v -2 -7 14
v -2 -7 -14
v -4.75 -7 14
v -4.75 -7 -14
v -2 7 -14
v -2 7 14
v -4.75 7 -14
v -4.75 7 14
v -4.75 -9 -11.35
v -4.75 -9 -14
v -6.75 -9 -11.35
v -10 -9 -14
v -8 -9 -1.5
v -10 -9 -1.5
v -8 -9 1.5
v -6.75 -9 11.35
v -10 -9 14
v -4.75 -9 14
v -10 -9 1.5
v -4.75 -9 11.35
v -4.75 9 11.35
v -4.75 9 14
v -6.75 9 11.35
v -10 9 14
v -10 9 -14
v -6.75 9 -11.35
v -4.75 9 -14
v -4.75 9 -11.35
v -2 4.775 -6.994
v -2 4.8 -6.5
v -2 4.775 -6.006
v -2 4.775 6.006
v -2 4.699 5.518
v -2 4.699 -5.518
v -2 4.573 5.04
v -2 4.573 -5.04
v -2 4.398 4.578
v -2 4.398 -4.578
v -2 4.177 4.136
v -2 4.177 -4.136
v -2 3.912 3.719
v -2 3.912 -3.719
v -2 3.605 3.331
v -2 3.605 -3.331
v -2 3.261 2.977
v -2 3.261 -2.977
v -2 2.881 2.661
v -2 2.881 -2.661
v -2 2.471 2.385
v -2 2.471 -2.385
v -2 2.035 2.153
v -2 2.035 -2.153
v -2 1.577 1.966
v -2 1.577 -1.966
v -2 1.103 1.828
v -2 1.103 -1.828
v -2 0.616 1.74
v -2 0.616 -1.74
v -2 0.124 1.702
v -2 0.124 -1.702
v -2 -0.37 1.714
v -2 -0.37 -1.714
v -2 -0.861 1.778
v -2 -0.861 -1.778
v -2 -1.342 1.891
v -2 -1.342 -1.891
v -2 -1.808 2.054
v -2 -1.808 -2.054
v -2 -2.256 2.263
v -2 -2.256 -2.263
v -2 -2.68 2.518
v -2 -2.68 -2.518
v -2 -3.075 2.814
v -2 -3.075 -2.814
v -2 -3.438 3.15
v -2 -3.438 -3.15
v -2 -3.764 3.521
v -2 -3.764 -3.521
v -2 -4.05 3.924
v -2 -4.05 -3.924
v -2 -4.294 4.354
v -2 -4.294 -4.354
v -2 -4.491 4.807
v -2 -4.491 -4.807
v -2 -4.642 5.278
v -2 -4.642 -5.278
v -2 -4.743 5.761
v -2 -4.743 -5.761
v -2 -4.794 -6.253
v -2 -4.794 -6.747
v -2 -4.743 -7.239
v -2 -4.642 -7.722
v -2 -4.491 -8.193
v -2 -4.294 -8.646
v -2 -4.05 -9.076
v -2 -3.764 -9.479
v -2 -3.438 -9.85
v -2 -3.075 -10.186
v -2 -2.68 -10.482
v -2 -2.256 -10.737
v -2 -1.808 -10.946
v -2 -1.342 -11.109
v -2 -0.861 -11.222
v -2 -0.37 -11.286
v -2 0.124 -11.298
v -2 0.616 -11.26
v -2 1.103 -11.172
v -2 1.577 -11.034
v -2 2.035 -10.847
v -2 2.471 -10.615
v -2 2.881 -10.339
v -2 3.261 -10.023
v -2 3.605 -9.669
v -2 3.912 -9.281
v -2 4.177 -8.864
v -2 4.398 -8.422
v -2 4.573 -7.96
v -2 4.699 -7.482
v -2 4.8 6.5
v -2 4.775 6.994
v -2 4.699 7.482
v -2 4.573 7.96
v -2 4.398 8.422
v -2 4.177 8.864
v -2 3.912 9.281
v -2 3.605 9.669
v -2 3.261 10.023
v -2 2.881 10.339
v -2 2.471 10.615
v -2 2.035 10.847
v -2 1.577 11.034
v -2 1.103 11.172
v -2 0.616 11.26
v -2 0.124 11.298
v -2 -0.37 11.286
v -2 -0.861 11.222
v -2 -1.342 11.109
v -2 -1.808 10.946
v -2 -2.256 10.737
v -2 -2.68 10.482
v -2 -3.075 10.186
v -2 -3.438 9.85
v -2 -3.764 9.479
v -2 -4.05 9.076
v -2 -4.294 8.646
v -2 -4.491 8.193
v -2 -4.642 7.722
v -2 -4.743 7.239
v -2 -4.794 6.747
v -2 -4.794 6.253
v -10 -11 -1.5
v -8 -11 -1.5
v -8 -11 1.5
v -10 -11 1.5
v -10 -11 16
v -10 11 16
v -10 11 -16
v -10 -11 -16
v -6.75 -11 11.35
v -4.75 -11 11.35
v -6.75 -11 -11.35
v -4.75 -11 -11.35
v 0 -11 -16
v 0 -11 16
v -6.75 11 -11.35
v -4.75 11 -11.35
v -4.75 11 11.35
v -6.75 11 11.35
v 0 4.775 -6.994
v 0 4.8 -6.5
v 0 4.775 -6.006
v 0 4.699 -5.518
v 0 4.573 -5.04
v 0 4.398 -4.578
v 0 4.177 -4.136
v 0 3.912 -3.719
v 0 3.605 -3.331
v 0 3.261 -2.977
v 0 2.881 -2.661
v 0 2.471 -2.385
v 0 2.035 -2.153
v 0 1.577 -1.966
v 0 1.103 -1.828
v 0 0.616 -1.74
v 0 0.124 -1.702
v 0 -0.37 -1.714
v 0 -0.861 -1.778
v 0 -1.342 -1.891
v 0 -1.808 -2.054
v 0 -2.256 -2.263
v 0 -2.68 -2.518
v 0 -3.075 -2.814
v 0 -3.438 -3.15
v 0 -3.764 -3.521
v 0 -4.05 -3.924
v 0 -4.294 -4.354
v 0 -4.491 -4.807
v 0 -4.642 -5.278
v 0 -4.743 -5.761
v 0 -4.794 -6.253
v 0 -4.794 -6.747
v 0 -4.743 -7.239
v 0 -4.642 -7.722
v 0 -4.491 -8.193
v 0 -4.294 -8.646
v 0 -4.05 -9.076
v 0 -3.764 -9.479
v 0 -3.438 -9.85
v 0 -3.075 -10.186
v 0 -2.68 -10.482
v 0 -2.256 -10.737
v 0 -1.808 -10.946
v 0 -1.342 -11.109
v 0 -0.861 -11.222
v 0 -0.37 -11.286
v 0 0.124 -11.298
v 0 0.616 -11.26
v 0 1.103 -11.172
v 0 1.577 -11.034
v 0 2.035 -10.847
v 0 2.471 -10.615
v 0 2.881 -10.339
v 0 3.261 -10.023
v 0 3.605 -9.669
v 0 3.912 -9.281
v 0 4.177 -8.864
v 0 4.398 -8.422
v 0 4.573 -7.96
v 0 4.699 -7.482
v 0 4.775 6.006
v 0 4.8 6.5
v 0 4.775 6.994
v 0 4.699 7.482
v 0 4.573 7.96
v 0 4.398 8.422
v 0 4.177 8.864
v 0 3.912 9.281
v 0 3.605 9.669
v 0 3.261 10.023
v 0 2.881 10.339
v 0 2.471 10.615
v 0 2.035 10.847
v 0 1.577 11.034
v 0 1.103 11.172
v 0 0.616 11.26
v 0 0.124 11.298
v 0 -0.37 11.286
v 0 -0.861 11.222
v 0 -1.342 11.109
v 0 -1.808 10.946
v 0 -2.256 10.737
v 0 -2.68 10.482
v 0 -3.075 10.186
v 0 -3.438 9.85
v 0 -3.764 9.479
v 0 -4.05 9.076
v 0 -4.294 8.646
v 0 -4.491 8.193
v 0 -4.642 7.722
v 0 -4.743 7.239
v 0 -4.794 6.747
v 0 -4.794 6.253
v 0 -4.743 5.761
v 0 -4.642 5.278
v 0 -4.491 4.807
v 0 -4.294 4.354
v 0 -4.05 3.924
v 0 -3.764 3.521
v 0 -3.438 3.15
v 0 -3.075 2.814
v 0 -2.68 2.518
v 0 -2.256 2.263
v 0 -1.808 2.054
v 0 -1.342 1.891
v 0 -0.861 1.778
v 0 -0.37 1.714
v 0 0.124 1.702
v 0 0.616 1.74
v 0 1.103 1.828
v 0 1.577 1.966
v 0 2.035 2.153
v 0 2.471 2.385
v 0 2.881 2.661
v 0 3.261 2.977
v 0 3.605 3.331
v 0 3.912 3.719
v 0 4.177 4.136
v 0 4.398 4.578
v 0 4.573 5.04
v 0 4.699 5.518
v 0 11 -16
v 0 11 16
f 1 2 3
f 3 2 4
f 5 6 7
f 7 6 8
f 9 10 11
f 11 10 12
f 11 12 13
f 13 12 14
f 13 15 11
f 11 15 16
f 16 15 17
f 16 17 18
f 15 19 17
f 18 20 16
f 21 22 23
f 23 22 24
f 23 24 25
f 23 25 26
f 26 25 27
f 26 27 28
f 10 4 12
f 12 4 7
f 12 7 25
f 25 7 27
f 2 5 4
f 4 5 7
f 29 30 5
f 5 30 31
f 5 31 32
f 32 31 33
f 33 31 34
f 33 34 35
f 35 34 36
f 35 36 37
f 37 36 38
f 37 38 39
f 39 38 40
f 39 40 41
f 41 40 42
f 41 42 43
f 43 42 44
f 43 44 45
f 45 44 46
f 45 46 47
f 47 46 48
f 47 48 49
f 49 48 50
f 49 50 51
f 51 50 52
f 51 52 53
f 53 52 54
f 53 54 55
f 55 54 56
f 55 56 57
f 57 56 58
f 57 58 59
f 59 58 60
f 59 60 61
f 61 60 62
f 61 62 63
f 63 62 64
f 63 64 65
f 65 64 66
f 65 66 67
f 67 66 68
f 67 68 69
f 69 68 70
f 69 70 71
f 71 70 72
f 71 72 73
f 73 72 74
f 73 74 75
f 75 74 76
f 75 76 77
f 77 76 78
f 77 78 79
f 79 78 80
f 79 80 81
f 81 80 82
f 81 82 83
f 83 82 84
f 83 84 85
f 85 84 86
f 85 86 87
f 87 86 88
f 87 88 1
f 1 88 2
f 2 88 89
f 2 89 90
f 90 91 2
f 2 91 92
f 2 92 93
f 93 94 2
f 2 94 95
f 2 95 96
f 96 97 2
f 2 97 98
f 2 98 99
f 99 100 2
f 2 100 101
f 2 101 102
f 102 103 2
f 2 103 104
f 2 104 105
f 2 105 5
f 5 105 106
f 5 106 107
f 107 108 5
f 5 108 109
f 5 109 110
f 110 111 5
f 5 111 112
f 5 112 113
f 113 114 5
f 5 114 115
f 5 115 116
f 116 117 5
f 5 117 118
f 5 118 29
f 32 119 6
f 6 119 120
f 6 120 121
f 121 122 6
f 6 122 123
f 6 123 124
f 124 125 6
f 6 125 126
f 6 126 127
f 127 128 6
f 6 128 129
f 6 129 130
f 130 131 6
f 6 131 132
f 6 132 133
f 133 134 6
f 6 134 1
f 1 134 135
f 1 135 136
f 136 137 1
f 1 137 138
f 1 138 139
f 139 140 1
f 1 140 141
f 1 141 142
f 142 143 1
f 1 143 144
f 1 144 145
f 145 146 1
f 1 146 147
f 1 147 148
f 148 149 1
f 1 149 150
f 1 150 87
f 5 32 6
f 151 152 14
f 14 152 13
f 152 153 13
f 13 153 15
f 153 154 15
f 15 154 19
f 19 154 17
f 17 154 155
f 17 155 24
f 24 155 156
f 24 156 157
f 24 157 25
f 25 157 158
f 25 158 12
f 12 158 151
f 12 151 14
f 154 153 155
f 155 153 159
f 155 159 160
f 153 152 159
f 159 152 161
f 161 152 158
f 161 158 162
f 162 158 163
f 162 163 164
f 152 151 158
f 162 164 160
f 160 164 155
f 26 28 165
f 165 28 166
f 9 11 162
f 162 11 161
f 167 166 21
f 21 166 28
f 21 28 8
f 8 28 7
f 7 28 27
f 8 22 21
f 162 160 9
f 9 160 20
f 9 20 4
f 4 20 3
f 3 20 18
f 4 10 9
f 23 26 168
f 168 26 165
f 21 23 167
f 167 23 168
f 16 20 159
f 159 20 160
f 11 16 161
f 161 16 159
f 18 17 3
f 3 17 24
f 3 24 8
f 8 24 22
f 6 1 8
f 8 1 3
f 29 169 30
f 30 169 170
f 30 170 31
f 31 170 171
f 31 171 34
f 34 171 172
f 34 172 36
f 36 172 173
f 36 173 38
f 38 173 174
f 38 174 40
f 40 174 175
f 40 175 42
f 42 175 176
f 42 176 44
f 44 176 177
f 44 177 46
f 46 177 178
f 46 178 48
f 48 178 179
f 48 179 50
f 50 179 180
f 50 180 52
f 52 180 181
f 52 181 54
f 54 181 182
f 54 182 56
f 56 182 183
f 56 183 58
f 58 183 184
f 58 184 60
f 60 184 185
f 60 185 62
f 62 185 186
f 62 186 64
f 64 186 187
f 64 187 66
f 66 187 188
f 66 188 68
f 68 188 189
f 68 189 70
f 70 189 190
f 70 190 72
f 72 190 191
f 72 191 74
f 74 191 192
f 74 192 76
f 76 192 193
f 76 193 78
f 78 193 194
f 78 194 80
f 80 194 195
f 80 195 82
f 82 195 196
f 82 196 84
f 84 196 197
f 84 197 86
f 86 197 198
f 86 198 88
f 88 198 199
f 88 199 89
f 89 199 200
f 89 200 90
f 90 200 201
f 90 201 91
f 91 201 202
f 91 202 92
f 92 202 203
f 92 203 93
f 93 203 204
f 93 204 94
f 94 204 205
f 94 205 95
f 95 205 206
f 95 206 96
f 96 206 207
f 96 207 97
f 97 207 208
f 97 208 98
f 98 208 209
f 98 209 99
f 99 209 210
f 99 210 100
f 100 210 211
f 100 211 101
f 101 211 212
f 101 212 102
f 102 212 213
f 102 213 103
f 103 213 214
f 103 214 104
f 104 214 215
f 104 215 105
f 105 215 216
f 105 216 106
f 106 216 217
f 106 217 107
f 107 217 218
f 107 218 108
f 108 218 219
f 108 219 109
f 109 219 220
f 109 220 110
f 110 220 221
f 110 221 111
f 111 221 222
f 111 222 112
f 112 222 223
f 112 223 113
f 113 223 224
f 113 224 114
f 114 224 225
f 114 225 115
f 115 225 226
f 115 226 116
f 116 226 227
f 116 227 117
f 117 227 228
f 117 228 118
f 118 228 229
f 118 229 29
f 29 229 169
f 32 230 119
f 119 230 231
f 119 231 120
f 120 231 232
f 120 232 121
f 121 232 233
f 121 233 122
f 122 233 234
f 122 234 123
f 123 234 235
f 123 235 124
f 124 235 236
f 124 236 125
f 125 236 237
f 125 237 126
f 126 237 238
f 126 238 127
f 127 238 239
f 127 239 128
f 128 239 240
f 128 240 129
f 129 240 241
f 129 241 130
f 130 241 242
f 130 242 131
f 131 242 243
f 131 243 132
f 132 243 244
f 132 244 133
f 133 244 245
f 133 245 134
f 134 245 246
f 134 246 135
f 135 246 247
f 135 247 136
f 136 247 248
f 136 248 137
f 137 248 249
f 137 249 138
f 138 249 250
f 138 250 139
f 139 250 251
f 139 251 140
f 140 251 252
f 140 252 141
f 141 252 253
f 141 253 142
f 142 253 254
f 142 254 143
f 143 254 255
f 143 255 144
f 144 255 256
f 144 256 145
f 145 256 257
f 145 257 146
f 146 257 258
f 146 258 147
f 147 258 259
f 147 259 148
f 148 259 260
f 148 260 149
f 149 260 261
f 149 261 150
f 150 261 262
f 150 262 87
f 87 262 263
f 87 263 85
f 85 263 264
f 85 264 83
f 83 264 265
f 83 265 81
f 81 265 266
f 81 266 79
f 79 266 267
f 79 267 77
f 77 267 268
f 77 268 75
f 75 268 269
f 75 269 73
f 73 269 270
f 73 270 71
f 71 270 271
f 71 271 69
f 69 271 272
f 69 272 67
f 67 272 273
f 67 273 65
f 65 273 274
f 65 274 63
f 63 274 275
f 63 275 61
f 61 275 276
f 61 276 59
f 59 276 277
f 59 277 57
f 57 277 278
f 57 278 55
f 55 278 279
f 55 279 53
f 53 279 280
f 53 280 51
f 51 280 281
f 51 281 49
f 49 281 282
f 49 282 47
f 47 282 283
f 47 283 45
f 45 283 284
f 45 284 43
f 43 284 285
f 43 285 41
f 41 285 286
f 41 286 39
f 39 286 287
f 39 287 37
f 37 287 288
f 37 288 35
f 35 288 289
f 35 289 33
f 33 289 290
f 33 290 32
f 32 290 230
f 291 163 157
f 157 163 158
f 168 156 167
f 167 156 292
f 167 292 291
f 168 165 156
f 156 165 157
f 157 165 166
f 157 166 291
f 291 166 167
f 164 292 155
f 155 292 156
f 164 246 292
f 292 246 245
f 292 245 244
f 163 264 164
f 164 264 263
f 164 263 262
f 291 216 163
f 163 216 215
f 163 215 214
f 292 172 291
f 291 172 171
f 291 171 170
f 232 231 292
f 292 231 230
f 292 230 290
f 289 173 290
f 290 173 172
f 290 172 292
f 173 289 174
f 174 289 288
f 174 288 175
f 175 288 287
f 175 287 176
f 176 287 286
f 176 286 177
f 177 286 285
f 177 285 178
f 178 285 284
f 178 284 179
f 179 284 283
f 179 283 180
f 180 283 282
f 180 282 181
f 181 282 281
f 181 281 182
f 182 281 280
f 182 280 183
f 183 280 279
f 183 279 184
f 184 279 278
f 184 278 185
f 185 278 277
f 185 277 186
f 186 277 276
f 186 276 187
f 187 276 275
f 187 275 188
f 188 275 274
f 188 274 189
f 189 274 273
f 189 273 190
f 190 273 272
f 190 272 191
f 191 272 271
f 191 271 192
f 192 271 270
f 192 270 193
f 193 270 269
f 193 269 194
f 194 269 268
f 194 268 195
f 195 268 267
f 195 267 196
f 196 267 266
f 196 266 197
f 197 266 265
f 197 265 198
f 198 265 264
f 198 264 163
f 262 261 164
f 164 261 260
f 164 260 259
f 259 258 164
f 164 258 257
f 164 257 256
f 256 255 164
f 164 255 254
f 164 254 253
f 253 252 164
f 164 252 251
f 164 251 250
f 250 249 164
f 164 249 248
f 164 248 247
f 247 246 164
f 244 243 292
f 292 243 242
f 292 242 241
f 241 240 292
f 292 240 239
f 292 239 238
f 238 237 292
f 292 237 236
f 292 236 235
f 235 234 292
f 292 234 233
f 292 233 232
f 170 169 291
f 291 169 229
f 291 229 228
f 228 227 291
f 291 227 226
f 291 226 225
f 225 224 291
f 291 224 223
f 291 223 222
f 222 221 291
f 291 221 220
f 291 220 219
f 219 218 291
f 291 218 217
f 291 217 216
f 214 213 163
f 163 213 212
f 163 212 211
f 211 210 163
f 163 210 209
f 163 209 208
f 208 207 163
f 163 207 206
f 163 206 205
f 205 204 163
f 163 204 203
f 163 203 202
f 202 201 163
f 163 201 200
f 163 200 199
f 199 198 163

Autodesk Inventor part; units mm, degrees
ref_plane "YZ Plane" through (0, 0, 0) normal (1, 0, 0) x (0, 1, 0)
ref_plane "XZ Plane" through (0, 0, 0) normal (0, 1, 0) x (-1, 0, 0)
ref_plane "XY Plane" through (0, 0, 0) normal (0, 0, 1) x (1, 0, 0)
sketch "Sketch2" plane through (0, 0, 0) normal (1, 0, 0) x (0, 1, 0)
  line L0 (11, -16) -> (-11, -16)
  line L1 (-11, -16) -> (-11, 16)
  line L2 (-11, 16) -> (11, 16)
  line L3 (11, 16) -> (11, -16)
  line L4 (11, -16) -> (-11, 16) construction
  line L5 (-11, -16) -> (11, 16) construction
  circle A0 centre (0, -6.5) radius 4.8
  circle A1 centre (0, 6.5) radius 4.8
  line L6 (0, 6.5) -> (0, 0)
  point P0 (0, 0)
  dimension "d8" = 22
  dimension "d9" = 32
  dimension "d14" = 9.6
  dimension "d15" = 13
  dimension "d23" = 6.5
  dimension "d24" = 9.6
  dimension "d25" = 13
extrude "Extrusion2" add sketch "Sketch2" against normal blind 10
shell "Shell1" thickness 2 removed faces 3 at (-10, 8.8868, -1.7838) at (-6.6667, 4.7378, -7.27) at (-6.6667, 4.7378, 5.73)
sketch "Sketch4" plane through (0, 0, 0) normal (0, 1, 0) x (-1, 0, 0)
  line L0 (2, -14) -> (2, 14) projected
  line L1 (2, 0) -> (4.75, 0) construction
  line L2 (4.75, -11.3497) -> (6.75, -11.3497)
  line L3 (6.75, -11.3497) -> (6.75, 11.3497)
  line L4 (6.75, 11.3497) -> (4.75, 11.3497)
  line L5 (4.75, 11.3497) -> (4.75, -11.3497)
  point P0 (0, 0)
  dimension "d19" = 2.75
  dimension "d20" = 2
extrude "Extrusion4" cut sketch "Sketch4" along normal mid plane 22
sketch "Sketch5" plane through (0, -11, -16) normal (0, -1, 0) x (1, 0, 0)
  line L0 (-10, 2) -> (-10, 30) projected
  line L1 (-8, 17.5) -> (-10, 17.5)
  line L2 (-10, 17.5) -> (-10, 14.5)
  line L3 (-10, 14.5) -> (-8, 14.5)
  line L4 (-8, 14.5) -> (-8, 17.5)
  line L5 (-8, 17.5) -> (-10, 14.5) construction
  line L6 (-10, 17.5) -> (-8, 14.5) construction
  line L7 (-10, 0) -> (-10, 32) projected
  point P0 (0, 16)
  dimension "d27" = 3
  dimension "d30" = 2
extrude "Extrusion5" cut sketch "Sketch5" against normal blind 2
sketch "Sketch6" plane through (-2, -9, 14) normal (-1, 0, 0) x (0, 0, 1)
  line L0 (0, 18) -> (0, 0) projected
  line L1 (-28, 16) -> (0, 16)
  line L2 (0, 16) -> (0, 2)
  line L3 (0, 2) -> (-28, 2)
  line L4 (-28, 2) -> (-28, 16)
  line L5 (-28, 16) -> (0, 2) construction
  line L6 (0, 16) -> (-28, 2) construction
  line L7 (-28, 18) -> (0, 18)
  line L8 (0, 18) -> (0, 0)
  line L9 (0, 0) -> (-28, 0)
  line L10 (-28, 0) -> (-28, 18)
  line L11 (-28, 18) -> (0, 0) construction
  line L12 (0, 18) -> (-28, 0) construction
  point P0 (-14, 9)
  dimension "d31" = 14
extrude "Extrusion6" add sketch "Sketch6" along normal blind 2.75 contours L0 L1 L10 L7 | L0 L9 L10 L3
properties part number "snapConnector_3DPrint"
